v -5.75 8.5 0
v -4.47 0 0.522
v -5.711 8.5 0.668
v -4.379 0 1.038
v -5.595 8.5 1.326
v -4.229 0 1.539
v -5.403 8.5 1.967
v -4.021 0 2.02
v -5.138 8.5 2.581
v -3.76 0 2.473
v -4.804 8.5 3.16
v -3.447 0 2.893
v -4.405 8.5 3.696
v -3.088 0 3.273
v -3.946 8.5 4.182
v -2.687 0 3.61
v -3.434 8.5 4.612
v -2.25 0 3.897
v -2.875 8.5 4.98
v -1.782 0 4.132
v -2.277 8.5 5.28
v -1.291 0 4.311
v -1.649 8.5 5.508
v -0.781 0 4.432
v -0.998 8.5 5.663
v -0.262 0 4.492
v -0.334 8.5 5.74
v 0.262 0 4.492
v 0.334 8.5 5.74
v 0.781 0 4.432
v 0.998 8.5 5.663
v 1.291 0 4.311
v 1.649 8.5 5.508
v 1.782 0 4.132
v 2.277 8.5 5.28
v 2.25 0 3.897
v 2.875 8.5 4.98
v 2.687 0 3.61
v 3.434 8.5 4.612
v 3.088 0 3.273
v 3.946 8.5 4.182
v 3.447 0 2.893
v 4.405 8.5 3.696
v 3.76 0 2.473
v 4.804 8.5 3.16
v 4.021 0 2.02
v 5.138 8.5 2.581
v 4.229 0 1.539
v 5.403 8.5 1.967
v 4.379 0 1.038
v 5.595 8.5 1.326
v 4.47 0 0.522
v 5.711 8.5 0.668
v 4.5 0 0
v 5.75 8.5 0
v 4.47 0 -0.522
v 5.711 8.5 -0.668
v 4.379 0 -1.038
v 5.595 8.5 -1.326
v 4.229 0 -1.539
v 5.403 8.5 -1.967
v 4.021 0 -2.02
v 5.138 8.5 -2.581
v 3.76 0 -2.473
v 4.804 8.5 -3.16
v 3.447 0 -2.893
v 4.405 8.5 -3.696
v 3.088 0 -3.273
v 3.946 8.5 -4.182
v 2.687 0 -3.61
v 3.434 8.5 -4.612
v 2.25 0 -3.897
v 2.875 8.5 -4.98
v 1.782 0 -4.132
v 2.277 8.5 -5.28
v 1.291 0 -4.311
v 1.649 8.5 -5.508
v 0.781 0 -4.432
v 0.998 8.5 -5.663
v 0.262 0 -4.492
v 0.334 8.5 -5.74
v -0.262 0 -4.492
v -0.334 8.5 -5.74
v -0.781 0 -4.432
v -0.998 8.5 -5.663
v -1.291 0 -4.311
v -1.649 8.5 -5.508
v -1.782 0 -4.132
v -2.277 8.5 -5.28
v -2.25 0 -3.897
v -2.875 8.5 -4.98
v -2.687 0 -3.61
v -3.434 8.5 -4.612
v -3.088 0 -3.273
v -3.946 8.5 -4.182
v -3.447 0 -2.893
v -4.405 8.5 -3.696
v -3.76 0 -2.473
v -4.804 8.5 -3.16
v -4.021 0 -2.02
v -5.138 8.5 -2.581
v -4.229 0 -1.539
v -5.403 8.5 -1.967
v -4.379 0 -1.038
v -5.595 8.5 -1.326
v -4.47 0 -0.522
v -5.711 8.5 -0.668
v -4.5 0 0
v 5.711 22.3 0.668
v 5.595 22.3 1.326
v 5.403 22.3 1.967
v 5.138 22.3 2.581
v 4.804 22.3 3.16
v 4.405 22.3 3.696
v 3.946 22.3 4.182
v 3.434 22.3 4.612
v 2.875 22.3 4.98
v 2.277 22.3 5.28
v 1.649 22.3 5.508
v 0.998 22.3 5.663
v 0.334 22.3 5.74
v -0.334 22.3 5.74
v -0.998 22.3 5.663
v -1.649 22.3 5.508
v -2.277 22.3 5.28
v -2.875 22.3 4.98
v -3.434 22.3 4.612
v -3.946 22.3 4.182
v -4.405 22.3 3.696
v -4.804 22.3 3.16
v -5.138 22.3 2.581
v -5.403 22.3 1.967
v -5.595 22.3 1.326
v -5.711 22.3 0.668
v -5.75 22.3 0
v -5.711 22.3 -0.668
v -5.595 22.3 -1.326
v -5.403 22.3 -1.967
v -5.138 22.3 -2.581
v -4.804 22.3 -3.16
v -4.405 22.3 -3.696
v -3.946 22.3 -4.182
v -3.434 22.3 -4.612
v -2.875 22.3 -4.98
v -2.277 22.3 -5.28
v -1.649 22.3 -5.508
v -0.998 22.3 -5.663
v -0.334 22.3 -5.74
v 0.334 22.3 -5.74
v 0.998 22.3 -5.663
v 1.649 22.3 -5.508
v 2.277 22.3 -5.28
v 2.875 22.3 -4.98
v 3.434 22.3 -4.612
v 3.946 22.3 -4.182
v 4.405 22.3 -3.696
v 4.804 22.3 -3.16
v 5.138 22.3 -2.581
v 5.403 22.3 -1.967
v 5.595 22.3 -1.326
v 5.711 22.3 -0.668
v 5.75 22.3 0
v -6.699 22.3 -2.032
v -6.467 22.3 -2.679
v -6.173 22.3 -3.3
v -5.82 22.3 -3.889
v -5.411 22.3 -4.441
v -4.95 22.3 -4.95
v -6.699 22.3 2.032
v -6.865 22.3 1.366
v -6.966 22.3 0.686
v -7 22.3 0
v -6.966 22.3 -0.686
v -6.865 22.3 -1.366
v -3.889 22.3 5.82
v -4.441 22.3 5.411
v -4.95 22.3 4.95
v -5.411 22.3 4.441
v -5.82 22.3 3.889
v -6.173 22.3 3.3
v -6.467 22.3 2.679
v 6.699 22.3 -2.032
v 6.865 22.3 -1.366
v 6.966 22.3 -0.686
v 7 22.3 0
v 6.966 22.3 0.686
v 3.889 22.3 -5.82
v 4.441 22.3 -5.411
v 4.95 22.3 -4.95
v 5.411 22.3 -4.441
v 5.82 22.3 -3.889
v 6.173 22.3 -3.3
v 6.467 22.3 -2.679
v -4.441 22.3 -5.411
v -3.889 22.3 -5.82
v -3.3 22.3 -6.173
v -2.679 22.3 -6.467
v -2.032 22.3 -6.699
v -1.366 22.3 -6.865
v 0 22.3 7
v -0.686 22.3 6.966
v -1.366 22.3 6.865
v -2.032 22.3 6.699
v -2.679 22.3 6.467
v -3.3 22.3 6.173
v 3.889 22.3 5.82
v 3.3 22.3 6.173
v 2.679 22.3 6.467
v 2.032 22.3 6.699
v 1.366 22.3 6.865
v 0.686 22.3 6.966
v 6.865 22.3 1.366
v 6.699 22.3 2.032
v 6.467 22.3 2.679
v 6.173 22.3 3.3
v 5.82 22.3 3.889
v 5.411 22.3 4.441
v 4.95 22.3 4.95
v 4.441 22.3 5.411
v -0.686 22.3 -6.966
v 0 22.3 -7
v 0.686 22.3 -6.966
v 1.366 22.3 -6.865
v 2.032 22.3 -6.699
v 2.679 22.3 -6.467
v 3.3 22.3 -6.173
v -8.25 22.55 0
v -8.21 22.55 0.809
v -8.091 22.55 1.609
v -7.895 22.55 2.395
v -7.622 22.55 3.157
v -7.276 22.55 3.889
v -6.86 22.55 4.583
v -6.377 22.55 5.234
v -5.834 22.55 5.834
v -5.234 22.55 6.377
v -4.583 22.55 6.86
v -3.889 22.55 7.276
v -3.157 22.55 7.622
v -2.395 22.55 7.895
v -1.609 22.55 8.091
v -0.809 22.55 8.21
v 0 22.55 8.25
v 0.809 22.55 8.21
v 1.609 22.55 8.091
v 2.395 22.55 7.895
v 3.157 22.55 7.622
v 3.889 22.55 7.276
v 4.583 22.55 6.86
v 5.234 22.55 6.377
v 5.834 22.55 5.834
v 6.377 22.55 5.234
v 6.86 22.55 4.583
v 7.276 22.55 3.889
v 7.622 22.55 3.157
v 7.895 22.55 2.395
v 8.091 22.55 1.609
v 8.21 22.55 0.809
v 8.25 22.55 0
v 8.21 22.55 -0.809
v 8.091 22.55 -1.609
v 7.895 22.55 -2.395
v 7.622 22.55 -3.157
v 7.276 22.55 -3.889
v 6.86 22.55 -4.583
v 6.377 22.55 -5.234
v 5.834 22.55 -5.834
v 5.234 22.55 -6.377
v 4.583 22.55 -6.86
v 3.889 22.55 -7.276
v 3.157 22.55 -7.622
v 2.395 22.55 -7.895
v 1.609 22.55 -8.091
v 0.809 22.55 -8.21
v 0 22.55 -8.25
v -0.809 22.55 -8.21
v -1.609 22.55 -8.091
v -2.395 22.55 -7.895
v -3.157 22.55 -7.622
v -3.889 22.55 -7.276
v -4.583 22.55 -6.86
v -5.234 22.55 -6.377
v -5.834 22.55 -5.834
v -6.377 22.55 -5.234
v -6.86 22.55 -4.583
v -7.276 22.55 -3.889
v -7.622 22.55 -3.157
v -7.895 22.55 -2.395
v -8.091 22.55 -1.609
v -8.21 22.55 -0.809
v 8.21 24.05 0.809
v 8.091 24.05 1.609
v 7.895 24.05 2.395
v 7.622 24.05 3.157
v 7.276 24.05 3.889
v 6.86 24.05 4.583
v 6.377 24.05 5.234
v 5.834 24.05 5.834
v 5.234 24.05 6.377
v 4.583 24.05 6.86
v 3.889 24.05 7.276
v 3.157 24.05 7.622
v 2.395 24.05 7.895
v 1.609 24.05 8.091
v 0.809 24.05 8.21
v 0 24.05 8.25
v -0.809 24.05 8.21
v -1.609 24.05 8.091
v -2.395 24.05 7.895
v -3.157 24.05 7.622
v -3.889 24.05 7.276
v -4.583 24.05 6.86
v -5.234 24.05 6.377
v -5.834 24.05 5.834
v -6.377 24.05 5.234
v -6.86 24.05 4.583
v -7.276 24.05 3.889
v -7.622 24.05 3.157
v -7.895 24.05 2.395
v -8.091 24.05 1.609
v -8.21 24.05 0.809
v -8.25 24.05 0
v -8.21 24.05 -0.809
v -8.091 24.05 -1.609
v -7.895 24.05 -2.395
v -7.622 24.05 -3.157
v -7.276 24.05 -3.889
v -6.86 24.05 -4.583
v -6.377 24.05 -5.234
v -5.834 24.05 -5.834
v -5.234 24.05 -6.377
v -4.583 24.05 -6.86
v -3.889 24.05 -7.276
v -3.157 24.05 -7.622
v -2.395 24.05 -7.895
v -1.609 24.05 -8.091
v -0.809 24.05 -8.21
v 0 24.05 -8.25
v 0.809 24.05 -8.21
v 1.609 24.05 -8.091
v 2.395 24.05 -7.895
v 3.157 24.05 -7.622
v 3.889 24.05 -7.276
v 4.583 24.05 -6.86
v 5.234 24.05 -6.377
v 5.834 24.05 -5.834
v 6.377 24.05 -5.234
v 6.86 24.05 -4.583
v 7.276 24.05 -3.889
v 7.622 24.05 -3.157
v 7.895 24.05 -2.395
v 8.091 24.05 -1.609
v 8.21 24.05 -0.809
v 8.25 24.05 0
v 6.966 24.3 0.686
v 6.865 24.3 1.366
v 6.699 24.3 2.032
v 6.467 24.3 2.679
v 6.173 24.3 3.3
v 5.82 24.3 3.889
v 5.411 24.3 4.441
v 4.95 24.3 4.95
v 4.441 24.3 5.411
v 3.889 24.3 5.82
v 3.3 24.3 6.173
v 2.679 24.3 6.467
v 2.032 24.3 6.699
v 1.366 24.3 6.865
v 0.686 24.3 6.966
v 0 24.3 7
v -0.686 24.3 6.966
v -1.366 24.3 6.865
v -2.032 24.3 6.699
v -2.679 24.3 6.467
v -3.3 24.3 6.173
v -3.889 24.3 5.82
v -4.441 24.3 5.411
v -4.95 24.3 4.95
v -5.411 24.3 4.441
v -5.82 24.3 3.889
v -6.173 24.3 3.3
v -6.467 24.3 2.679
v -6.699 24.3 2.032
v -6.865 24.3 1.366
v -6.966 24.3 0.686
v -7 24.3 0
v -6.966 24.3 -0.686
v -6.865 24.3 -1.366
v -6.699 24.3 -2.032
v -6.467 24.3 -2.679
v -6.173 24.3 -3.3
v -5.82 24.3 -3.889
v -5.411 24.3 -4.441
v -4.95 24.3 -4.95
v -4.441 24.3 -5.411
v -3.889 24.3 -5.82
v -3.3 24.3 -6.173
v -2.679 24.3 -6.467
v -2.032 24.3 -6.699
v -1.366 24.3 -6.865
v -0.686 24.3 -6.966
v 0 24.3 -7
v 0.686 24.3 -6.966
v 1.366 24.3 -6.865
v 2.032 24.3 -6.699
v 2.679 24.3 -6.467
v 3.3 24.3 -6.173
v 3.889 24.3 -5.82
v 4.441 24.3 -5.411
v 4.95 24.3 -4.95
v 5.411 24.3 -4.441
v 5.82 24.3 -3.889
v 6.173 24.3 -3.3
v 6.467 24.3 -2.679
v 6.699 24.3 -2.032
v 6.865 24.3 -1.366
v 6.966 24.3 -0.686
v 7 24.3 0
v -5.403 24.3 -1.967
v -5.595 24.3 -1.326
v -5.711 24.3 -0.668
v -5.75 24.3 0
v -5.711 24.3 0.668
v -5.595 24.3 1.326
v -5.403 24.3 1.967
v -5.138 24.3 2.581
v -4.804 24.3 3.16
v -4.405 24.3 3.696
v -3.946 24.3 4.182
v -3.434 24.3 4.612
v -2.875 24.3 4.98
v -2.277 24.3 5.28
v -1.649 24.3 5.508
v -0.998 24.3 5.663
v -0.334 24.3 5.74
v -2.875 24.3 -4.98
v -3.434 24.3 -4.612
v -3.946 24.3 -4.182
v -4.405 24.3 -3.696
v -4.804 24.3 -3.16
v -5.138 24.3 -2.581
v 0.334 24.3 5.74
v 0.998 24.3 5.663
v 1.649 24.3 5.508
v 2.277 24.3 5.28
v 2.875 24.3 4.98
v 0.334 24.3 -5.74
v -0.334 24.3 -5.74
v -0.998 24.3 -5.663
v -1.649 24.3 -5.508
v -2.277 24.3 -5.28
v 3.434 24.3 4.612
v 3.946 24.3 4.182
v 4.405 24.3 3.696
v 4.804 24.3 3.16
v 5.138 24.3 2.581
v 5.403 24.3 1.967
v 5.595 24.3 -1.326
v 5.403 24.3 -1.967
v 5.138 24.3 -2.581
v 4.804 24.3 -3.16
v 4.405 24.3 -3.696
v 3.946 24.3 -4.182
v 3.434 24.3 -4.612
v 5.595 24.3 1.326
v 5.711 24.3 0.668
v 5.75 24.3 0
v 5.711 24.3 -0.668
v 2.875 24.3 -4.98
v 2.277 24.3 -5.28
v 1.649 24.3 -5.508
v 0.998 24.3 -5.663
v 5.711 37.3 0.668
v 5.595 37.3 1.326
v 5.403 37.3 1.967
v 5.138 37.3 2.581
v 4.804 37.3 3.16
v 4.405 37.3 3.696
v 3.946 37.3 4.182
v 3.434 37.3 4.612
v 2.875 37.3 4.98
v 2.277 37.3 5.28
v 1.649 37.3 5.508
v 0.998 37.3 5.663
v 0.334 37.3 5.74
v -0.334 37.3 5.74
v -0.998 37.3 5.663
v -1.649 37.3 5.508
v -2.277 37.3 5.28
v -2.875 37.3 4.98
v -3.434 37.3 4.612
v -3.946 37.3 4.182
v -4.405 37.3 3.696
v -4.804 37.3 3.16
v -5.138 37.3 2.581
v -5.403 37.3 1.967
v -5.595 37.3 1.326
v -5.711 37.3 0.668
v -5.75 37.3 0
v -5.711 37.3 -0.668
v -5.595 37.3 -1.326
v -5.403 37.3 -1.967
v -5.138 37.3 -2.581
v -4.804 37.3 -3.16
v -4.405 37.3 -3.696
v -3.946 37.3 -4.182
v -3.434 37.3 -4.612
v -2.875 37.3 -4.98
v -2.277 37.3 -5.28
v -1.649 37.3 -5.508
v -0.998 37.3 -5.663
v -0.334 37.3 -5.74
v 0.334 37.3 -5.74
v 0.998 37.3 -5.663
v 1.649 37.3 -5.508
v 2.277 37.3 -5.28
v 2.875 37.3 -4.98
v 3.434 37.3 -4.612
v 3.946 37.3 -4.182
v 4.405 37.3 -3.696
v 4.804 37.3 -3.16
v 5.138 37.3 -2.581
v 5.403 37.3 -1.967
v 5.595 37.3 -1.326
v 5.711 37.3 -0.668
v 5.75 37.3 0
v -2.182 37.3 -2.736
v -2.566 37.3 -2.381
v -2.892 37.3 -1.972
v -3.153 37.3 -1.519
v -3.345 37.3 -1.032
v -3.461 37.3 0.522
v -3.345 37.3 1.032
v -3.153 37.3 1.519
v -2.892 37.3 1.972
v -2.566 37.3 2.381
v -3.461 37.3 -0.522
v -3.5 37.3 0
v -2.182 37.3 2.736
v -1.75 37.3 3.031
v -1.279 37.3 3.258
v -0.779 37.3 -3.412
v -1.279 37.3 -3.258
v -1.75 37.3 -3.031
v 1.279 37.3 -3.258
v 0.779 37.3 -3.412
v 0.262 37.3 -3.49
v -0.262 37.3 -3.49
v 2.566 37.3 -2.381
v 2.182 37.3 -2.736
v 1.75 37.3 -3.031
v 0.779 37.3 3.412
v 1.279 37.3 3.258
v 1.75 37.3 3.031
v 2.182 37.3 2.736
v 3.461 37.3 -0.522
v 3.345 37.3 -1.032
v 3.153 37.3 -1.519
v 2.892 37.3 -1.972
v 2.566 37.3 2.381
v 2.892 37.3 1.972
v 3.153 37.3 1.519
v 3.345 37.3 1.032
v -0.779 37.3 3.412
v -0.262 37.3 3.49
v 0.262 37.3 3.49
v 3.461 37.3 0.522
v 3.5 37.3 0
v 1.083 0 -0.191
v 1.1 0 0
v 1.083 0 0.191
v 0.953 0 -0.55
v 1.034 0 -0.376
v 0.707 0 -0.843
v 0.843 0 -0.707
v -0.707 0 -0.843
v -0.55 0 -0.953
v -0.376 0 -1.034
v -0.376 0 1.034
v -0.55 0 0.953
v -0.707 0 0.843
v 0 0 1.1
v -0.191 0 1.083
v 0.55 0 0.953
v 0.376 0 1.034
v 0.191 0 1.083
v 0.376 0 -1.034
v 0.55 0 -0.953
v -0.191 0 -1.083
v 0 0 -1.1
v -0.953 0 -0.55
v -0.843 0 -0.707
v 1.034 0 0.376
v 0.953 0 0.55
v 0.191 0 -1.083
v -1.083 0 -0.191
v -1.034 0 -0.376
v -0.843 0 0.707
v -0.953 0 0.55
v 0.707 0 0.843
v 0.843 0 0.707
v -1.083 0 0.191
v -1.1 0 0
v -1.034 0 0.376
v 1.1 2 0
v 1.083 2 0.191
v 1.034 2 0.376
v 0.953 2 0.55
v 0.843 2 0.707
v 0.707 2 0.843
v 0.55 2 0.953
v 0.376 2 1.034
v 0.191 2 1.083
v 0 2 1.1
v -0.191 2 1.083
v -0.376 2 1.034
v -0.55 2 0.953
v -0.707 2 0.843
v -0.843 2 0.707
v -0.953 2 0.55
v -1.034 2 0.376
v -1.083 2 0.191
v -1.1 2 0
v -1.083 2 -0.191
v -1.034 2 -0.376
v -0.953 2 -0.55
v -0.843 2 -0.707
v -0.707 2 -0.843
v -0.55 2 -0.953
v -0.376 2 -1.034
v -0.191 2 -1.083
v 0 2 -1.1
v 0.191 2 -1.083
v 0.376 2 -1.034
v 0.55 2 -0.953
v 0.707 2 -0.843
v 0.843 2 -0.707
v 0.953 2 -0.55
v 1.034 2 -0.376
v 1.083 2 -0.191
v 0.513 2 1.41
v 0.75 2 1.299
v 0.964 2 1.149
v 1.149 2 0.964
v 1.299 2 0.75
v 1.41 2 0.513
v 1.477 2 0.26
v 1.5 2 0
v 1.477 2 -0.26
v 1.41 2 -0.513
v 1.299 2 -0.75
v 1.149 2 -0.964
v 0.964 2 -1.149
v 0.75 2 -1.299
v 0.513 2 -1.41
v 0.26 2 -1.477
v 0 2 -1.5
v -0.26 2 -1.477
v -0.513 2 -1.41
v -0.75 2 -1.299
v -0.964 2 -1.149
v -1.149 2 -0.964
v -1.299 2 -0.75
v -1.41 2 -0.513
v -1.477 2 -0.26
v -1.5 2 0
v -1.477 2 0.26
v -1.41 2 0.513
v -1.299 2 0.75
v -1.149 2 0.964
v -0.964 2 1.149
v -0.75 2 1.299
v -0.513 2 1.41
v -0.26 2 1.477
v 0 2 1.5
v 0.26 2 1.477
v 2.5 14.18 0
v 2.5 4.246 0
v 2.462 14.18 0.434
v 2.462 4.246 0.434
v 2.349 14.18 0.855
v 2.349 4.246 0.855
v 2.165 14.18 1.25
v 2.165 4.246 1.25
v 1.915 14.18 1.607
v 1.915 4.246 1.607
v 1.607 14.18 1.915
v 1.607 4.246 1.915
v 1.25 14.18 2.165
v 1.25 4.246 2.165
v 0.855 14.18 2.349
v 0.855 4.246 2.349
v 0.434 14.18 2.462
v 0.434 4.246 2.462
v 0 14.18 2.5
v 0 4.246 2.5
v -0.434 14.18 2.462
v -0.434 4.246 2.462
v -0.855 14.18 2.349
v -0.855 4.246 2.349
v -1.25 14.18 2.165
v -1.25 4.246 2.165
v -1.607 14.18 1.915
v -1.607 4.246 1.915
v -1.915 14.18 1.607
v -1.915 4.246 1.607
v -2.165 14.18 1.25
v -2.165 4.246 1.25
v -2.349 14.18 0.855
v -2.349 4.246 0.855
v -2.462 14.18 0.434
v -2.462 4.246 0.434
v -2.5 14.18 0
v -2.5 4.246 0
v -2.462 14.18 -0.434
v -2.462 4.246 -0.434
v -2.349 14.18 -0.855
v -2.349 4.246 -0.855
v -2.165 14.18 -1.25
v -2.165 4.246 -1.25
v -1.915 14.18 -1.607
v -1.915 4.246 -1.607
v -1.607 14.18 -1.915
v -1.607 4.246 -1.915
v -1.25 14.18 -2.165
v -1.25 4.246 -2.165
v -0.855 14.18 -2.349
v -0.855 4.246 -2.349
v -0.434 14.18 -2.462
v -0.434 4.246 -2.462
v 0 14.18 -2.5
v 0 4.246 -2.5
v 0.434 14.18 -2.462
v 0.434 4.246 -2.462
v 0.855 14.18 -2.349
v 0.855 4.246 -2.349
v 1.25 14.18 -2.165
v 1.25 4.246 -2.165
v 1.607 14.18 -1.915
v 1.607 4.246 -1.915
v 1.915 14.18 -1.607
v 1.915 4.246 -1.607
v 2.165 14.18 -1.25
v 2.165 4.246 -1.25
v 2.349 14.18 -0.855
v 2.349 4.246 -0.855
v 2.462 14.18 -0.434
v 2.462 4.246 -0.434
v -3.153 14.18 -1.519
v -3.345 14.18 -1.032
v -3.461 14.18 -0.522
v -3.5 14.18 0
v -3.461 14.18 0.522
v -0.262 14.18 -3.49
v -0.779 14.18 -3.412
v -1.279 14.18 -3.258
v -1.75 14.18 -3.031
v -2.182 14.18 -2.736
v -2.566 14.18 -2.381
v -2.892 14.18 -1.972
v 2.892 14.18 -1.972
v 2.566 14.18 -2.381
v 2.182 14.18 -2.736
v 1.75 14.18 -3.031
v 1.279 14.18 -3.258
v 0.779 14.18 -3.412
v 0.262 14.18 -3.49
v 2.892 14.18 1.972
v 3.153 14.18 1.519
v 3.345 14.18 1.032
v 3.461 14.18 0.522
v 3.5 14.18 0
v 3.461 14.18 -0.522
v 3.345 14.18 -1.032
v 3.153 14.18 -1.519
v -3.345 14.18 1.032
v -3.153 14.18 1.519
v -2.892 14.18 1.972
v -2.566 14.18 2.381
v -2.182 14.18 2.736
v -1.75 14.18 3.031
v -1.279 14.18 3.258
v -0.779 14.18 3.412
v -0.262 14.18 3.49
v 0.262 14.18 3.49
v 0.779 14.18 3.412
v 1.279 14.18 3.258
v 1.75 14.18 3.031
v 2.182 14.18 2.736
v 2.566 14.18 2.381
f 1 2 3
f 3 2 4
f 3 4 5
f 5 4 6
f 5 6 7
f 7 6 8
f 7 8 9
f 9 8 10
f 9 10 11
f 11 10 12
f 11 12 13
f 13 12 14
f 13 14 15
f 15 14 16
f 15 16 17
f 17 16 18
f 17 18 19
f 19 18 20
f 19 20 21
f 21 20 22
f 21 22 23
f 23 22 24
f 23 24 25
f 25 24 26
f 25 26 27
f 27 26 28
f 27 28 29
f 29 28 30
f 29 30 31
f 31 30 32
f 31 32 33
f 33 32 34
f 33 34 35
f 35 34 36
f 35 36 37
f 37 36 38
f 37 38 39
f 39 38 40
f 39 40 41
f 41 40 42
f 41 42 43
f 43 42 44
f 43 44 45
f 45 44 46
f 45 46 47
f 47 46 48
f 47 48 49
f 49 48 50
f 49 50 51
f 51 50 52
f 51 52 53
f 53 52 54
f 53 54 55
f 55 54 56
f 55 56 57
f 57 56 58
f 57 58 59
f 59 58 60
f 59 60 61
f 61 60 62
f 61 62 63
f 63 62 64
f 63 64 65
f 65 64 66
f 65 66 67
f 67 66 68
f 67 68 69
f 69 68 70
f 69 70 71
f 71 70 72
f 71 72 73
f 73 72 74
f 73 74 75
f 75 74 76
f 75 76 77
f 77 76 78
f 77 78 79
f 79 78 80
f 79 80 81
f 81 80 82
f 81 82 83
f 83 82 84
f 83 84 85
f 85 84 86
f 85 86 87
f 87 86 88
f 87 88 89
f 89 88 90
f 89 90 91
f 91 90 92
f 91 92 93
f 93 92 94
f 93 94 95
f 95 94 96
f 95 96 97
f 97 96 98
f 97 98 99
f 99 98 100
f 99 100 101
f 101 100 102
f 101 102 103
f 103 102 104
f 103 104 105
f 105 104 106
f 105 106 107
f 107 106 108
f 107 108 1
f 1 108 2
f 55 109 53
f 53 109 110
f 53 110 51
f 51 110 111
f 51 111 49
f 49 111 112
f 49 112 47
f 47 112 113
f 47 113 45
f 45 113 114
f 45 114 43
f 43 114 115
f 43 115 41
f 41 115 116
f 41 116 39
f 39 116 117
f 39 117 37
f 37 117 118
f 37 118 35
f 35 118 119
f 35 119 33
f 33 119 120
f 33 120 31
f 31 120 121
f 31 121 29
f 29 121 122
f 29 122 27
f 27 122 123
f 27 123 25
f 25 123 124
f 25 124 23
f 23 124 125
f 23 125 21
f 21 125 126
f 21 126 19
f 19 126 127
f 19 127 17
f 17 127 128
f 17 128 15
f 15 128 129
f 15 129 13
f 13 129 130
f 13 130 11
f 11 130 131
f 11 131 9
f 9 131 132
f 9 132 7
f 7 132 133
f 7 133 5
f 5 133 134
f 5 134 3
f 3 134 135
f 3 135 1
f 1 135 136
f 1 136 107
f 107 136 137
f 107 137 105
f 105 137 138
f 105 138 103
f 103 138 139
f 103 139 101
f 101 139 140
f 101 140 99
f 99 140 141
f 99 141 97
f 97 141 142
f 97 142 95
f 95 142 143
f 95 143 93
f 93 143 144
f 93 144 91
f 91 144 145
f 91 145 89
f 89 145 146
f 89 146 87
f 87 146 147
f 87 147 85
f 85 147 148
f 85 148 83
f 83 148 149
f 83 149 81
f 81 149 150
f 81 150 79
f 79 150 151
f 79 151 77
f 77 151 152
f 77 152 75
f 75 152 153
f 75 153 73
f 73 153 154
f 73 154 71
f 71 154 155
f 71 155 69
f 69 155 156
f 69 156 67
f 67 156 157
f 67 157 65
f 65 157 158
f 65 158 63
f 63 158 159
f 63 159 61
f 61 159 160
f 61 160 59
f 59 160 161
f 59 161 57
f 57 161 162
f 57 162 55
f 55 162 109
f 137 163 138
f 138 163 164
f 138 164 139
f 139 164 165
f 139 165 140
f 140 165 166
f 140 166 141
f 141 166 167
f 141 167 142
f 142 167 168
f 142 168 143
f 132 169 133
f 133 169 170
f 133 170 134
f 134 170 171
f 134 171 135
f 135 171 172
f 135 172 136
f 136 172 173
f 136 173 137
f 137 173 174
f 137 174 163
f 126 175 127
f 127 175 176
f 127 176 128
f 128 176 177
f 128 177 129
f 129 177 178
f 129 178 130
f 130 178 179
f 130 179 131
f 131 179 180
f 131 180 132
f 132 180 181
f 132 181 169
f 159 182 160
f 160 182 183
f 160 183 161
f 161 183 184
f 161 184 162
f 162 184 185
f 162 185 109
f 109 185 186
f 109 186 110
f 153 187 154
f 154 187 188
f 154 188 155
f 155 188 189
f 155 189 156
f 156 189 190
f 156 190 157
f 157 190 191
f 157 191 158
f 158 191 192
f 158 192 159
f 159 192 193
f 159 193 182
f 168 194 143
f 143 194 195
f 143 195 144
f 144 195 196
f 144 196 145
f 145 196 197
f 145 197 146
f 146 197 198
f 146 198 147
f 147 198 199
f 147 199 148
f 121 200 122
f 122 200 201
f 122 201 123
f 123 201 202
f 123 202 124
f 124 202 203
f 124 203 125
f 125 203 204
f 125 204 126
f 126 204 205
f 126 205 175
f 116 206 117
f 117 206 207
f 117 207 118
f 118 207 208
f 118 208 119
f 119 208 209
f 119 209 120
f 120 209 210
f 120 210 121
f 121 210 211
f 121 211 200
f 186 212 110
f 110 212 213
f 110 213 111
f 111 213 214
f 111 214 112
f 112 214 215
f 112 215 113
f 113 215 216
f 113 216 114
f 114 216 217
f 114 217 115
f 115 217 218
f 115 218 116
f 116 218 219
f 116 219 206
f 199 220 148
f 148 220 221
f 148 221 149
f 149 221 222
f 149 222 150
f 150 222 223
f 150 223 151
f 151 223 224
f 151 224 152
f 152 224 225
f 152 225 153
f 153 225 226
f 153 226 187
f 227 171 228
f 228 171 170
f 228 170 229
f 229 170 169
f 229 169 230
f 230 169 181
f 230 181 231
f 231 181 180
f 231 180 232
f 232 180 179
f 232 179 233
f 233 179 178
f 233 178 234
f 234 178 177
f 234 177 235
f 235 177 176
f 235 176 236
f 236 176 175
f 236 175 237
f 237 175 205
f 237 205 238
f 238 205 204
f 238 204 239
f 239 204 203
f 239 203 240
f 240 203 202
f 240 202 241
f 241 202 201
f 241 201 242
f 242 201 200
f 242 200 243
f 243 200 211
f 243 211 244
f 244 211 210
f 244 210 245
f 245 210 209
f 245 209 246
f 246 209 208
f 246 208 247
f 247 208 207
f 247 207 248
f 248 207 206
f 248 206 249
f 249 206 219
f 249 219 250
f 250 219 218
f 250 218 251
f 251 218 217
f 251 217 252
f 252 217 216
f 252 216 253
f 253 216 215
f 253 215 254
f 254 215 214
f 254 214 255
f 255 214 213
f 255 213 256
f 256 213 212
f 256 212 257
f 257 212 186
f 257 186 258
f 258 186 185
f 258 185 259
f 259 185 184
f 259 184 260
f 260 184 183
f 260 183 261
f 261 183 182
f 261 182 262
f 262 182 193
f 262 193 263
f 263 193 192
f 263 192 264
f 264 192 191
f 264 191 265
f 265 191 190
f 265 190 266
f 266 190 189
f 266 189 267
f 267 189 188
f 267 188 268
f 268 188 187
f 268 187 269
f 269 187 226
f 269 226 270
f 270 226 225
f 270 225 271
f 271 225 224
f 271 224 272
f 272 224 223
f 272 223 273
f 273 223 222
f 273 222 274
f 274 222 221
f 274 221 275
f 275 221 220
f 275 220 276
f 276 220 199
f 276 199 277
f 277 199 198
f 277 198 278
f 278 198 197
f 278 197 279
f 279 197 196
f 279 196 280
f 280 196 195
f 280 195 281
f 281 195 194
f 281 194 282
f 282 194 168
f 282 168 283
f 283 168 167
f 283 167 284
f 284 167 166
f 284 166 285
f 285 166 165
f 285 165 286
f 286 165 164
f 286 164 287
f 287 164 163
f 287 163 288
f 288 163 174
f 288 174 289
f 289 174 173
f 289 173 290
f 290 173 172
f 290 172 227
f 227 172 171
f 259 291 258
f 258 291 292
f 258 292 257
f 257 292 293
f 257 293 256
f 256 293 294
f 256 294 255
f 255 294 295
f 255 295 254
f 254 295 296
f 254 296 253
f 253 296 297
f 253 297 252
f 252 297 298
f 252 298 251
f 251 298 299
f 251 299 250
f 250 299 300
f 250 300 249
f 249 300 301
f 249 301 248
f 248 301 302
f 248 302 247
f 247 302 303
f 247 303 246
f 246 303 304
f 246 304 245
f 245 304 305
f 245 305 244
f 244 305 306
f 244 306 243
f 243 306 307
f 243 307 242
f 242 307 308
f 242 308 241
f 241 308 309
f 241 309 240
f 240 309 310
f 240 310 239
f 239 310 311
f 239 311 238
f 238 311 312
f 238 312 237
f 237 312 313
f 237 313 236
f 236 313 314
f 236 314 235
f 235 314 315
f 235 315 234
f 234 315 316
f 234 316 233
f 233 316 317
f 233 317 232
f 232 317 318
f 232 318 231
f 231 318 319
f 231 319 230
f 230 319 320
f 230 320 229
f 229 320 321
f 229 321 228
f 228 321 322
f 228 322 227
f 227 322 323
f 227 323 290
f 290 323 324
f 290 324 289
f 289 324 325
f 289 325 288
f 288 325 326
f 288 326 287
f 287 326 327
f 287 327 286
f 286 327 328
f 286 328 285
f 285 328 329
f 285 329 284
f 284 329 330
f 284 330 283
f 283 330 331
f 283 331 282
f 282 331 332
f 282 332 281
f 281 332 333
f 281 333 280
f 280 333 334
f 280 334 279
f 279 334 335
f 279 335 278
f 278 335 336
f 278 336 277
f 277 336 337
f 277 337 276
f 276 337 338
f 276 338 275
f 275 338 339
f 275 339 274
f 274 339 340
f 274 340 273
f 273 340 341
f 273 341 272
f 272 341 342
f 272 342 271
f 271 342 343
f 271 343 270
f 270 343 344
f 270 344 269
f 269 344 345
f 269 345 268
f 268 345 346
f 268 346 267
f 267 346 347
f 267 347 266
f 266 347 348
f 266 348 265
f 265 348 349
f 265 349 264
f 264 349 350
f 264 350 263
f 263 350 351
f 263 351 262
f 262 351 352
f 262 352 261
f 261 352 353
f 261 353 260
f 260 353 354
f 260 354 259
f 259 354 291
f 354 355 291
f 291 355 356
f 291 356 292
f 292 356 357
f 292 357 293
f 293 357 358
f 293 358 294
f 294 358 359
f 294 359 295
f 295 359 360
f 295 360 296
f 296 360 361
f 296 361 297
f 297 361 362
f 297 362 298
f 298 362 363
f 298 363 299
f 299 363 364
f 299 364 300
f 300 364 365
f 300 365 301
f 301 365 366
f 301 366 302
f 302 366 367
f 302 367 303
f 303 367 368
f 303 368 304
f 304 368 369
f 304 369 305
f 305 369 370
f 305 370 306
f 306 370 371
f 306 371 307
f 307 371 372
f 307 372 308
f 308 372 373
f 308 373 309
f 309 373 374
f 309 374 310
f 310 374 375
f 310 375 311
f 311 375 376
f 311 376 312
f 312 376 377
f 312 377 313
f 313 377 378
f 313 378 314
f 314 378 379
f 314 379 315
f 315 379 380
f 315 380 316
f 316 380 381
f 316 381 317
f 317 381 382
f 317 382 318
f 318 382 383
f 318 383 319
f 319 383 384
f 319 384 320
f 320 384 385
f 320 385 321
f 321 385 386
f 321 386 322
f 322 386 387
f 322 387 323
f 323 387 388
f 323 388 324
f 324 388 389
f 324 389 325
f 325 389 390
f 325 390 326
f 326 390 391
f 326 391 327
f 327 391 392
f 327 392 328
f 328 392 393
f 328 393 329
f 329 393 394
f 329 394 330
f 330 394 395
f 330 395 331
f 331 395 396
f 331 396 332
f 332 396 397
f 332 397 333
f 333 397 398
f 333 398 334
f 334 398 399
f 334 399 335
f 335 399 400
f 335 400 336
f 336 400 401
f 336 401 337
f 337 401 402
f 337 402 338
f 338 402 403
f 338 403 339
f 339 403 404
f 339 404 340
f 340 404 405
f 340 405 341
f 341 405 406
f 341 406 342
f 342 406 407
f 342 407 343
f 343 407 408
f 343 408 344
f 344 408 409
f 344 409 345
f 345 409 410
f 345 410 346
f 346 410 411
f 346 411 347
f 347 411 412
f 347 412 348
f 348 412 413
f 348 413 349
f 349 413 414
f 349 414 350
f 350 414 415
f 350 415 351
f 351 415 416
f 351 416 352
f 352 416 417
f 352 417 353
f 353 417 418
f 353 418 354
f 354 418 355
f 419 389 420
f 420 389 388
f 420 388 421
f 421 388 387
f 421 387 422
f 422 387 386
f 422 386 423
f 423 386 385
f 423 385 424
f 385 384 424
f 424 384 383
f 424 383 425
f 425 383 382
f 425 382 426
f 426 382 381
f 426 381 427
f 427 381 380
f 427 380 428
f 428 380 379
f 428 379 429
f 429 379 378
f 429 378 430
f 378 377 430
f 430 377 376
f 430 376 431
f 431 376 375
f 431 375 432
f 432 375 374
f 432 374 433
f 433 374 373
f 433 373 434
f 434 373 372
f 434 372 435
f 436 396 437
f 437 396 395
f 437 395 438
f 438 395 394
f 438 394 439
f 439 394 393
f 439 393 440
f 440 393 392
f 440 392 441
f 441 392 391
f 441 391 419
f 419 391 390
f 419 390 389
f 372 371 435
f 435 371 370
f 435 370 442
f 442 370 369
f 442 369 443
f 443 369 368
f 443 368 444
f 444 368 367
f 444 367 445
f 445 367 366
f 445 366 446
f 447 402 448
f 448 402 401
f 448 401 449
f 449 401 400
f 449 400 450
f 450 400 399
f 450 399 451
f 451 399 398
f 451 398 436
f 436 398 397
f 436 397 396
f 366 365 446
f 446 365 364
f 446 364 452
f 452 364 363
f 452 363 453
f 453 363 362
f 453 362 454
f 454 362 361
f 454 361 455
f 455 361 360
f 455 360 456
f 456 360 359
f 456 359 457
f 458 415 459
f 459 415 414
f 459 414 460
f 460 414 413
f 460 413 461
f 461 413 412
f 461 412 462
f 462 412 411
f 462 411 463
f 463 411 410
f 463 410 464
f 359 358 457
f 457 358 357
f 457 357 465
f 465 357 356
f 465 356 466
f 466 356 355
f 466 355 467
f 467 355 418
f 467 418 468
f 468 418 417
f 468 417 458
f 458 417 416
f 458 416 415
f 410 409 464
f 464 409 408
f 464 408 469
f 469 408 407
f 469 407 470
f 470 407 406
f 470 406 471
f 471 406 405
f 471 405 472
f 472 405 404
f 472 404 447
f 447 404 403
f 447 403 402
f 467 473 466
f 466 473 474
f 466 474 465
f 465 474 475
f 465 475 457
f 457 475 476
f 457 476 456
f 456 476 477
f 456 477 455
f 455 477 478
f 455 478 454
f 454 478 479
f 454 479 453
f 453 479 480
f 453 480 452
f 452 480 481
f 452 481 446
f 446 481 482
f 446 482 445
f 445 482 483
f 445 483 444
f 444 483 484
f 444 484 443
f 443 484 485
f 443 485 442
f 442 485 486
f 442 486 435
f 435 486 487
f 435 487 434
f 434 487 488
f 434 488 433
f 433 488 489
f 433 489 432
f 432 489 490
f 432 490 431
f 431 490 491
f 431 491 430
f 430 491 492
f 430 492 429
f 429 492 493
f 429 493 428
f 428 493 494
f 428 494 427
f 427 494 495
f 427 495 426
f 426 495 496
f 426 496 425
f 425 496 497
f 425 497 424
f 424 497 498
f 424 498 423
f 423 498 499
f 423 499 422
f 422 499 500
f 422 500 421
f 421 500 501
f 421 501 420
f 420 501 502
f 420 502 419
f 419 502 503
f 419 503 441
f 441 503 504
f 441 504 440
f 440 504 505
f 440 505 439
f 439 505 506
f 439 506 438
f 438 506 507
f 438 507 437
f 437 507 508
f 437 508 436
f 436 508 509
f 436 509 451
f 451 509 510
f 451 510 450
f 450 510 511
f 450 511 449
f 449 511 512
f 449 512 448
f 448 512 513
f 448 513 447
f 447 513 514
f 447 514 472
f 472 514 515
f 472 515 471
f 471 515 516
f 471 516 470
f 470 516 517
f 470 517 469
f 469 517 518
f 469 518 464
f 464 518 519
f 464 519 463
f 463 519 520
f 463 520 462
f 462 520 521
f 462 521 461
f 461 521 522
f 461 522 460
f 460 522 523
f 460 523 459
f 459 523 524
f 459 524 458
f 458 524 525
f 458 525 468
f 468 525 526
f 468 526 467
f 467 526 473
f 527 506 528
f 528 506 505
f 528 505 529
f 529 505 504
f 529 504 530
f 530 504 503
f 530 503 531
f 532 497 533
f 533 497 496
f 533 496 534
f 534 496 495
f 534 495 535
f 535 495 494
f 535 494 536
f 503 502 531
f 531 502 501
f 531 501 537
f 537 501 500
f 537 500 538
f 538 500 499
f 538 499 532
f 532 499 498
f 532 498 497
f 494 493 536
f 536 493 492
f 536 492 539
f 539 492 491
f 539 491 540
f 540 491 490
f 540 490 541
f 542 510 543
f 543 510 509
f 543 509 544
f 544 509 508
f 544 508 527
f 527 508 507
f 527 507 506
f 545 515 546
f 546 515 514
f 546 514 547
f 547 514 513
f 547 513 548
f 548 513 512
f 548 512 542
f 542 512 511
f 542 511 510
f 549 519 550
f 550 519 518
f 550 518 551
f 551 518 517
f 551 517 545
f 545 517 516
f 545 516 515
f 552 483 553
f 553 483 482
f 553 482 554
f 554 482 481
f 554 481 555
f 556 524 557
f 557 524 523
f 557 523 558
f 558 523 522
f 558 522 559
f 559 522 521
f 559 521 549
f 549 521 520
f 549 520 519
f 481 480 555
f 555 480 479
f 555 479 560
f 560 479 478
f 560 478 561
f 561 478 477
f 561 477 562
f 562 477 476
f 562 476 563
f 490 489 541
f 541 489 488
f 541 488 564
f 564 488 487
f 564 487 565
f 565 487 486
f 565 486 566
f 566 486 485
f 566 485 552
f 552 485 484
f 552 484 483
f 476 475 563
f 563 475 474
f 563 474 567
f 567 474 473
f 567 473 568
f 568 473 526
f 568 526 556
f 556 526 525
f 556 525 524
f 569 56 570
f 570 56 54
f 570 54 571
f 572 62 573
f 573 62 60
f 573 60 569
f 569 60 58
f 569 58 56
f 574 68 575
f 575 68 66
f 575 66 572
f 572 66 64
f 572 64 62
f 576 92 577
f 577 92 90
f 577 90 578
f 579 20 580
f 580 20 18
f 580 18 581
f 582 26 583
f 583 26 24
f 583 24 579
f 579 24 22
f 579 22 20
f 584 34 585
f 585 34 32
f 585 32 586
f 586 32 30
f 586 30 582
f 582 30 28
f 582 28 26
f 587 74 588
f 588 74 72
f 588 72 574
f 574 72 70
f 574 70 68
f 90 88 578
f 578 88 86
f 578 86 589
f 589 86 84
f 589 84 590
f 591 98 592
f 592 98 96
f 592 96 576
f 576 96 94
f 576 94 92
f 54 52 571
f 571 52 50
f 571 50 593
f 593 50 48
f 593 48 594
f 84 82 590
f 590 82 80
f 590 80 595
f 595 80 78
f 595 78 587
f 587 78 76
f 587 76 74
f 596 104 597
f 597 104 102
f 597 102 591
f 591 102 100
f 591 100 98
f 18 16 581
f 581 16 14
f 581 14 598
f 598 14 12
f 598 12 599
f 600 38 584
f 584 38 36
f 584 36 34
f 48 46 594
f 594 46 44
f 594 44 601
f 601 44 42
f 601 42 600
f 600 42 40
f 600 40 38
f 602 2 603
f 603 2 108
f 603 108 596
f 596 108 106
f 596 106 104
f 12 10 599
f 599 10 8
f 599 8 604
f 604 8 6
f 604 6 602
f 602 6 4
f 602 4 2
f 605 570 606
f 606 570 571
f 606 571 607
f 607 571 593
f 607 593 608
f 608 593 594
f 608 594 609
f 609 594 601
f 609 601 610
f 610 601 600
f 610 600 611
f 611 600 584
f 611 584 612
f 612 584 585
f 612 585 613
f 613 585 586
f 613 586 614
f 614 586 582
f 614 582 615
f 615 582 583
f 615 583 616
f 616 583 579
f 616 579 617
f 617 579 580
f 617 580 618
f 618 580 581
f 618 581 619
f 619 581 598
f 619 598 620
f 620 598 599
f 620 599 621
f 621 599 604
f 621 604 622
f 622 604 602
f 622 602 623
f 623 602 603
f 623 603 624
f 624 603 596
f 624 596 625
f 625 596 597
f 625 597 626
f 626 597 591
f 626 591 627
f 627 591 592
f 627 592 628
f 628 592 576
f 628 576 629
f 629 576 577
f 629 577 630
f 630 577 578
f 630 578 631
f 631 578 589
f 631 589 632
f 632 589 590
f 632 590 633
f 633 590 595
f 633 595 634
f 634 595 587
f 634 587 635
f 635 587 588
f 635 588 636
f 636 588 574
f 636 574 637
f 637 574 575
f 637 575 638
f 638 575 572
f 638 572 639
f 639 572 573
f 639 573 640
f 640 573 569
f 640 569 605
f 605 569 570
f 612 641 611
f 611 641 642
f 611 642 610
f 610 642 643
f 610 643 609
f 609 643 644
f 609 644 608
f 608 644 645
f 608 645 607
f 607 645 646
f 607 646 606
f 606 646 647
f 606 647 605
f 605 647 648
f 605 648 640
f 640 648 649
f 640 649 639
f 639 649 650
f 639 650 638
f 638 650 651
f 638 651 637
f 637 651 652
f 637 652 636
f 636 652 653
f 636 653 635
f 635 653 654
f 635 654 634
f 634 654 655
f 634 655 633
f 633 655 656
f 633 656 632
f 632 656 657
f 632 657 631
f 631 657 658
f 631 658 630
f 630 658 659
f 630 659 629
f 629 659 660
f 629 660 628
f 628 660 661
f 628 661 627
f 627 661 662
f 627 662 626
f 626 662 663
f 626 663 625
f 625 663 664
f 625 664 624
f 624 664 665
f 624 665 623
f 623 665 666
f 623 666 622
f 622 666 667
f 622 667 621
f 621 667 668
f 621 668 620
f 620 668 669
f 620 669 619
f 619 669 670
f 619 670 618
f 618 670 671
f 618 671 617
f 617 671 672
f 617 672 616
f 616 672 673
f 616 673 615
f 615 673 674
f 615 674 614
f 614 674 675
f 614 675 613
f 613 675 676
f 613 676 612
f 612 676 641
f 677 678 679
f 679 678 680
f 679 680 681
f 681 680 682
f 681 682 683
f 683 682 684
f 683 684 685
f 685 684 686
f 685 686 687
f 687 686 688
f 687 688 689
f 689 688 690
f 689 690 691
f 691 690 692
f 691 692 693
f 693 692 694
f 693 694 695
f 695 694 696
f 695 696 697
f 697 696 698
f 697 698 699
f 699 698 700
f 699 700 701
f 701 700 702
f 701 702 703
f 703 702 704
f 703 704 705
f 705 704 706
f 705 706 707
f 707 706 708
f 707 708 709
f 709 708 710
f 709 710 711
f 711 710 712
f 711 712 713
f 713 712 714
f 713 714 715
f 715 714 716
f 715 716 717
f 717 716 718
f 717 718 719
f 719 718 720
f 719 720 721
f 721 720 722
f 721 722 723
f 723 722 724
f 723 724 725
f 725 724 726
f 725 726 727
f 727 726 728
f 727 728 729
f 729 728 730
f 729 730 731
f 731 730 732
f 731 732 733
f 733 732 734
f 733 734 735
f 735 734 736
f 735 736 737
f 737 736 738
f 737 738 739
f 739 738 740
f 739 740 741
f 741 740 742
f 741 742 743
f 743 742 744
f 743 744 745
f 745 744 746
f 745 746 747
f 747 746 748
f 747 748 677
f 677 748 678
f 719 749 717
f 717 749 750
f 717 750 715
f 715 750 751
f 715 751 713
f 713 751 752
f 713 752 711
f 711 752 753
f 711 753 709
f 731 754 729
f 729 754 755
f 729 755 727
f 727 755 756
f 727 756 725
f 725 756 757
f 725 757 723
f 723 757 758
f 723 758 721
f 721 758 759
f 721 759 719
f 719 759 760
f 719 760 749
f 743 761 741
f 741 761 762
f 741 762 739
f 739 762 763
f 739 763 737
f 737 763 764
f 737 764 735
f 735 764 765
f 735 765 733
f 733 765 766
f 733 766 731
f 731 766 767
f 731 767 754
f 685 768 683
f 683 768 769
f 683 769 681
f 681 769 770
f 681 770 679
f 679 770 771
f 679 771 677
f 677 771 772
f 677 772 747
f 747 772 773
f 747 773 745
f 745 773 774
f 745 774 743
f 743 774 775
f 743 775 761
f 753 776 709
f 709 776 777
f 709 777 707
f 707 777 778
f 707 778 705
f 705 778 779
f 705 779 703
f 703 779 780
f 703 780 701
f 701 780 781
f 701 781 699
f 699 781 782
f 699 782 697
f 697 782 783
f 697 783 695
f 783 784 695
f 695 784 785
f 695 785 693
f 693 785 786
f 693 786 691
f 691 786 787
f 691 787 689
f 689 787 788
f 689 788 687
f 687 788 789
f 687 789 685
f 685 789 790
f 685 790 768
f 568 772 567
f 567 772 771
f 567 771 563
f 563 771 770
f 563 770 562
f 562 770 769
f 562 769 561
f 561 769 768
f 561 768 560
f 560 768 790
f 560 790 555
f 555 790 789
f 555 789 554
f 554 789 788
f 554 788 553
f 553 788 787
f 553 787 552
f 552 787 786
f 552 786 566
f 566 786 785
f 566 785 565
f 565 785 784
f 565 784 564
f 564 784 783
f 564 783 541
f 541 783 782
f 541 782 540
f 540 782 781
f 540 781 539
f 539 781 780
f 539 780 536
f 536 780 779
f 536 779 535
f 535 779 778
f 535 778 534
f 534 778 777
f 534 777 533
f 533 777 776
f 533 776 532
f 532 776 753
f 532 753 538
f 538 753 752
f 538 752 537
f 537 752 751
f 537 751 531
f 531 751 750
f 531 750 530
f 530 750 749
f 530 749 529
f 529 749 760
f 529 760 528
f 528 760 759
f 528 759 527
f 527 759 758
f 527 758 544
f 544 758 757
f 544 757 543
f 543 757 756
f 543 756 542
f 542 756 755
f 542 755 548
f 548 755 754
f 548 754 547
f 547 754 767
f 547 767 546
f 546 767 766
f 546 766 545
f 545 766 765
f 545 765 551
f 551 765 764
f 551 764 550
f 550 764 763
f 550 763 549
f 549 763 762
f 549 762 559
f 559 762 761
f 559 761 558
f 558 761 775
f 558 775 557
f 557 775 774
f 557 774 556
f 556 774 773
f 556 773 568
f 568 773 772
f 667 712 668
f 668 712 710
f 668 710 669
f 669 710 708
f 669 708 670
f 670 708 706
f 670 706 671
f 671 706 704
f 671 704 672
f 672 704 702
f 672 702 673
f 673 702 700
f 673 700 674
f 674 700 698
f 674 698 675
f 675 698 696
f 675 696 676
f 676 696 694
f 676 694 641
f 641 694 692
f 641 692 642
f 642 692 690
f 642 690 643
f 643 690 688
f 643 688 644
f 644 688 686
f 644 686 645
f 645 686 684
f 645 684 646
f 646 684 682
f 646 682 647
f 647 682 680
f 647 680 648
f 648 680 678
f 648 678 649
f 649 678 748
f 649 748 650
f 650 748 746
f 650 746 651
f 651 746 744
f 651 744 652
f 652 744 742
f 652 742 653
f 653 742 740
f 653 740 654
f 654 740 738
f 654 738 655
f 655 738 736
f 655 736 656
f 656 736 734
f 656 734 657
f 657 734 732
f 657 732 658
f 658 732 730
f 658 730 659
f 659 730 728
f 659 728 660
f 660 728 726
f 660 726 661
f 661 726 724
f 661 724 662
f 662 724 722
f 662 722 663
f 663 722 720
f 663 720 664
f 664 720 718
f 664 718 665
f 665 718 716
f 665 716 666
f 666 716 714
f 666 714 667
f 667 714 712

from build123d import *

# Parameters (mm, degrees)
CHAMFER1_SIZE  = 1
CHAMFER1_SIZE2 = 2.246036774


with BuildPart() as part:
    # Sketch1 → Revolve1 (revolve)
    with BuildSketch(Plane.XY):
        Polygon((0, 0), (4.5, 0), (5.75, 8.5), (5.75, 22.3), (7, 22.3), (8.25, 22.55), (8.25, 24.05), (7, 24.3), (5.75, 24.3), (5.75, 37.3), (0, 37.3), align=None)
    revolve(axis=Axis((0, -143.950460456, 0), (0, 1, 0)))

    # Sketch2 → Cut-Revolve1 (revolve, cut)
    with BuildSketch(Plane.XY):
        Polygon((1.1, 0), (1.1, 2), (2.5, 2), (2.5, 14.18), (3.5, 14.18), (3.5, 37.3), (0, 37.3), (0, 0), align=None)
    revolve(axis=Axis((0, -1000, 0), (0, 1, 0)), mode=Mode.SUBTRACT)

    # Chamfer1
    chamfer1_edges = [part.edges().sort_by_distance(p)[0] for p in [
        (-2.5, 2, 0),
    ]]
    chamfer1_side = [part.faces().sort_by_distance(p)[0] for p in [
        (-1.170710678, 2, 0),
    ]]
    chamfer(chamfer1_edges, length=CHAMFER1_SIZE, length2=CHAMFER1_SIZE2, reference=chamfer1_side[0])


solid = part.part
